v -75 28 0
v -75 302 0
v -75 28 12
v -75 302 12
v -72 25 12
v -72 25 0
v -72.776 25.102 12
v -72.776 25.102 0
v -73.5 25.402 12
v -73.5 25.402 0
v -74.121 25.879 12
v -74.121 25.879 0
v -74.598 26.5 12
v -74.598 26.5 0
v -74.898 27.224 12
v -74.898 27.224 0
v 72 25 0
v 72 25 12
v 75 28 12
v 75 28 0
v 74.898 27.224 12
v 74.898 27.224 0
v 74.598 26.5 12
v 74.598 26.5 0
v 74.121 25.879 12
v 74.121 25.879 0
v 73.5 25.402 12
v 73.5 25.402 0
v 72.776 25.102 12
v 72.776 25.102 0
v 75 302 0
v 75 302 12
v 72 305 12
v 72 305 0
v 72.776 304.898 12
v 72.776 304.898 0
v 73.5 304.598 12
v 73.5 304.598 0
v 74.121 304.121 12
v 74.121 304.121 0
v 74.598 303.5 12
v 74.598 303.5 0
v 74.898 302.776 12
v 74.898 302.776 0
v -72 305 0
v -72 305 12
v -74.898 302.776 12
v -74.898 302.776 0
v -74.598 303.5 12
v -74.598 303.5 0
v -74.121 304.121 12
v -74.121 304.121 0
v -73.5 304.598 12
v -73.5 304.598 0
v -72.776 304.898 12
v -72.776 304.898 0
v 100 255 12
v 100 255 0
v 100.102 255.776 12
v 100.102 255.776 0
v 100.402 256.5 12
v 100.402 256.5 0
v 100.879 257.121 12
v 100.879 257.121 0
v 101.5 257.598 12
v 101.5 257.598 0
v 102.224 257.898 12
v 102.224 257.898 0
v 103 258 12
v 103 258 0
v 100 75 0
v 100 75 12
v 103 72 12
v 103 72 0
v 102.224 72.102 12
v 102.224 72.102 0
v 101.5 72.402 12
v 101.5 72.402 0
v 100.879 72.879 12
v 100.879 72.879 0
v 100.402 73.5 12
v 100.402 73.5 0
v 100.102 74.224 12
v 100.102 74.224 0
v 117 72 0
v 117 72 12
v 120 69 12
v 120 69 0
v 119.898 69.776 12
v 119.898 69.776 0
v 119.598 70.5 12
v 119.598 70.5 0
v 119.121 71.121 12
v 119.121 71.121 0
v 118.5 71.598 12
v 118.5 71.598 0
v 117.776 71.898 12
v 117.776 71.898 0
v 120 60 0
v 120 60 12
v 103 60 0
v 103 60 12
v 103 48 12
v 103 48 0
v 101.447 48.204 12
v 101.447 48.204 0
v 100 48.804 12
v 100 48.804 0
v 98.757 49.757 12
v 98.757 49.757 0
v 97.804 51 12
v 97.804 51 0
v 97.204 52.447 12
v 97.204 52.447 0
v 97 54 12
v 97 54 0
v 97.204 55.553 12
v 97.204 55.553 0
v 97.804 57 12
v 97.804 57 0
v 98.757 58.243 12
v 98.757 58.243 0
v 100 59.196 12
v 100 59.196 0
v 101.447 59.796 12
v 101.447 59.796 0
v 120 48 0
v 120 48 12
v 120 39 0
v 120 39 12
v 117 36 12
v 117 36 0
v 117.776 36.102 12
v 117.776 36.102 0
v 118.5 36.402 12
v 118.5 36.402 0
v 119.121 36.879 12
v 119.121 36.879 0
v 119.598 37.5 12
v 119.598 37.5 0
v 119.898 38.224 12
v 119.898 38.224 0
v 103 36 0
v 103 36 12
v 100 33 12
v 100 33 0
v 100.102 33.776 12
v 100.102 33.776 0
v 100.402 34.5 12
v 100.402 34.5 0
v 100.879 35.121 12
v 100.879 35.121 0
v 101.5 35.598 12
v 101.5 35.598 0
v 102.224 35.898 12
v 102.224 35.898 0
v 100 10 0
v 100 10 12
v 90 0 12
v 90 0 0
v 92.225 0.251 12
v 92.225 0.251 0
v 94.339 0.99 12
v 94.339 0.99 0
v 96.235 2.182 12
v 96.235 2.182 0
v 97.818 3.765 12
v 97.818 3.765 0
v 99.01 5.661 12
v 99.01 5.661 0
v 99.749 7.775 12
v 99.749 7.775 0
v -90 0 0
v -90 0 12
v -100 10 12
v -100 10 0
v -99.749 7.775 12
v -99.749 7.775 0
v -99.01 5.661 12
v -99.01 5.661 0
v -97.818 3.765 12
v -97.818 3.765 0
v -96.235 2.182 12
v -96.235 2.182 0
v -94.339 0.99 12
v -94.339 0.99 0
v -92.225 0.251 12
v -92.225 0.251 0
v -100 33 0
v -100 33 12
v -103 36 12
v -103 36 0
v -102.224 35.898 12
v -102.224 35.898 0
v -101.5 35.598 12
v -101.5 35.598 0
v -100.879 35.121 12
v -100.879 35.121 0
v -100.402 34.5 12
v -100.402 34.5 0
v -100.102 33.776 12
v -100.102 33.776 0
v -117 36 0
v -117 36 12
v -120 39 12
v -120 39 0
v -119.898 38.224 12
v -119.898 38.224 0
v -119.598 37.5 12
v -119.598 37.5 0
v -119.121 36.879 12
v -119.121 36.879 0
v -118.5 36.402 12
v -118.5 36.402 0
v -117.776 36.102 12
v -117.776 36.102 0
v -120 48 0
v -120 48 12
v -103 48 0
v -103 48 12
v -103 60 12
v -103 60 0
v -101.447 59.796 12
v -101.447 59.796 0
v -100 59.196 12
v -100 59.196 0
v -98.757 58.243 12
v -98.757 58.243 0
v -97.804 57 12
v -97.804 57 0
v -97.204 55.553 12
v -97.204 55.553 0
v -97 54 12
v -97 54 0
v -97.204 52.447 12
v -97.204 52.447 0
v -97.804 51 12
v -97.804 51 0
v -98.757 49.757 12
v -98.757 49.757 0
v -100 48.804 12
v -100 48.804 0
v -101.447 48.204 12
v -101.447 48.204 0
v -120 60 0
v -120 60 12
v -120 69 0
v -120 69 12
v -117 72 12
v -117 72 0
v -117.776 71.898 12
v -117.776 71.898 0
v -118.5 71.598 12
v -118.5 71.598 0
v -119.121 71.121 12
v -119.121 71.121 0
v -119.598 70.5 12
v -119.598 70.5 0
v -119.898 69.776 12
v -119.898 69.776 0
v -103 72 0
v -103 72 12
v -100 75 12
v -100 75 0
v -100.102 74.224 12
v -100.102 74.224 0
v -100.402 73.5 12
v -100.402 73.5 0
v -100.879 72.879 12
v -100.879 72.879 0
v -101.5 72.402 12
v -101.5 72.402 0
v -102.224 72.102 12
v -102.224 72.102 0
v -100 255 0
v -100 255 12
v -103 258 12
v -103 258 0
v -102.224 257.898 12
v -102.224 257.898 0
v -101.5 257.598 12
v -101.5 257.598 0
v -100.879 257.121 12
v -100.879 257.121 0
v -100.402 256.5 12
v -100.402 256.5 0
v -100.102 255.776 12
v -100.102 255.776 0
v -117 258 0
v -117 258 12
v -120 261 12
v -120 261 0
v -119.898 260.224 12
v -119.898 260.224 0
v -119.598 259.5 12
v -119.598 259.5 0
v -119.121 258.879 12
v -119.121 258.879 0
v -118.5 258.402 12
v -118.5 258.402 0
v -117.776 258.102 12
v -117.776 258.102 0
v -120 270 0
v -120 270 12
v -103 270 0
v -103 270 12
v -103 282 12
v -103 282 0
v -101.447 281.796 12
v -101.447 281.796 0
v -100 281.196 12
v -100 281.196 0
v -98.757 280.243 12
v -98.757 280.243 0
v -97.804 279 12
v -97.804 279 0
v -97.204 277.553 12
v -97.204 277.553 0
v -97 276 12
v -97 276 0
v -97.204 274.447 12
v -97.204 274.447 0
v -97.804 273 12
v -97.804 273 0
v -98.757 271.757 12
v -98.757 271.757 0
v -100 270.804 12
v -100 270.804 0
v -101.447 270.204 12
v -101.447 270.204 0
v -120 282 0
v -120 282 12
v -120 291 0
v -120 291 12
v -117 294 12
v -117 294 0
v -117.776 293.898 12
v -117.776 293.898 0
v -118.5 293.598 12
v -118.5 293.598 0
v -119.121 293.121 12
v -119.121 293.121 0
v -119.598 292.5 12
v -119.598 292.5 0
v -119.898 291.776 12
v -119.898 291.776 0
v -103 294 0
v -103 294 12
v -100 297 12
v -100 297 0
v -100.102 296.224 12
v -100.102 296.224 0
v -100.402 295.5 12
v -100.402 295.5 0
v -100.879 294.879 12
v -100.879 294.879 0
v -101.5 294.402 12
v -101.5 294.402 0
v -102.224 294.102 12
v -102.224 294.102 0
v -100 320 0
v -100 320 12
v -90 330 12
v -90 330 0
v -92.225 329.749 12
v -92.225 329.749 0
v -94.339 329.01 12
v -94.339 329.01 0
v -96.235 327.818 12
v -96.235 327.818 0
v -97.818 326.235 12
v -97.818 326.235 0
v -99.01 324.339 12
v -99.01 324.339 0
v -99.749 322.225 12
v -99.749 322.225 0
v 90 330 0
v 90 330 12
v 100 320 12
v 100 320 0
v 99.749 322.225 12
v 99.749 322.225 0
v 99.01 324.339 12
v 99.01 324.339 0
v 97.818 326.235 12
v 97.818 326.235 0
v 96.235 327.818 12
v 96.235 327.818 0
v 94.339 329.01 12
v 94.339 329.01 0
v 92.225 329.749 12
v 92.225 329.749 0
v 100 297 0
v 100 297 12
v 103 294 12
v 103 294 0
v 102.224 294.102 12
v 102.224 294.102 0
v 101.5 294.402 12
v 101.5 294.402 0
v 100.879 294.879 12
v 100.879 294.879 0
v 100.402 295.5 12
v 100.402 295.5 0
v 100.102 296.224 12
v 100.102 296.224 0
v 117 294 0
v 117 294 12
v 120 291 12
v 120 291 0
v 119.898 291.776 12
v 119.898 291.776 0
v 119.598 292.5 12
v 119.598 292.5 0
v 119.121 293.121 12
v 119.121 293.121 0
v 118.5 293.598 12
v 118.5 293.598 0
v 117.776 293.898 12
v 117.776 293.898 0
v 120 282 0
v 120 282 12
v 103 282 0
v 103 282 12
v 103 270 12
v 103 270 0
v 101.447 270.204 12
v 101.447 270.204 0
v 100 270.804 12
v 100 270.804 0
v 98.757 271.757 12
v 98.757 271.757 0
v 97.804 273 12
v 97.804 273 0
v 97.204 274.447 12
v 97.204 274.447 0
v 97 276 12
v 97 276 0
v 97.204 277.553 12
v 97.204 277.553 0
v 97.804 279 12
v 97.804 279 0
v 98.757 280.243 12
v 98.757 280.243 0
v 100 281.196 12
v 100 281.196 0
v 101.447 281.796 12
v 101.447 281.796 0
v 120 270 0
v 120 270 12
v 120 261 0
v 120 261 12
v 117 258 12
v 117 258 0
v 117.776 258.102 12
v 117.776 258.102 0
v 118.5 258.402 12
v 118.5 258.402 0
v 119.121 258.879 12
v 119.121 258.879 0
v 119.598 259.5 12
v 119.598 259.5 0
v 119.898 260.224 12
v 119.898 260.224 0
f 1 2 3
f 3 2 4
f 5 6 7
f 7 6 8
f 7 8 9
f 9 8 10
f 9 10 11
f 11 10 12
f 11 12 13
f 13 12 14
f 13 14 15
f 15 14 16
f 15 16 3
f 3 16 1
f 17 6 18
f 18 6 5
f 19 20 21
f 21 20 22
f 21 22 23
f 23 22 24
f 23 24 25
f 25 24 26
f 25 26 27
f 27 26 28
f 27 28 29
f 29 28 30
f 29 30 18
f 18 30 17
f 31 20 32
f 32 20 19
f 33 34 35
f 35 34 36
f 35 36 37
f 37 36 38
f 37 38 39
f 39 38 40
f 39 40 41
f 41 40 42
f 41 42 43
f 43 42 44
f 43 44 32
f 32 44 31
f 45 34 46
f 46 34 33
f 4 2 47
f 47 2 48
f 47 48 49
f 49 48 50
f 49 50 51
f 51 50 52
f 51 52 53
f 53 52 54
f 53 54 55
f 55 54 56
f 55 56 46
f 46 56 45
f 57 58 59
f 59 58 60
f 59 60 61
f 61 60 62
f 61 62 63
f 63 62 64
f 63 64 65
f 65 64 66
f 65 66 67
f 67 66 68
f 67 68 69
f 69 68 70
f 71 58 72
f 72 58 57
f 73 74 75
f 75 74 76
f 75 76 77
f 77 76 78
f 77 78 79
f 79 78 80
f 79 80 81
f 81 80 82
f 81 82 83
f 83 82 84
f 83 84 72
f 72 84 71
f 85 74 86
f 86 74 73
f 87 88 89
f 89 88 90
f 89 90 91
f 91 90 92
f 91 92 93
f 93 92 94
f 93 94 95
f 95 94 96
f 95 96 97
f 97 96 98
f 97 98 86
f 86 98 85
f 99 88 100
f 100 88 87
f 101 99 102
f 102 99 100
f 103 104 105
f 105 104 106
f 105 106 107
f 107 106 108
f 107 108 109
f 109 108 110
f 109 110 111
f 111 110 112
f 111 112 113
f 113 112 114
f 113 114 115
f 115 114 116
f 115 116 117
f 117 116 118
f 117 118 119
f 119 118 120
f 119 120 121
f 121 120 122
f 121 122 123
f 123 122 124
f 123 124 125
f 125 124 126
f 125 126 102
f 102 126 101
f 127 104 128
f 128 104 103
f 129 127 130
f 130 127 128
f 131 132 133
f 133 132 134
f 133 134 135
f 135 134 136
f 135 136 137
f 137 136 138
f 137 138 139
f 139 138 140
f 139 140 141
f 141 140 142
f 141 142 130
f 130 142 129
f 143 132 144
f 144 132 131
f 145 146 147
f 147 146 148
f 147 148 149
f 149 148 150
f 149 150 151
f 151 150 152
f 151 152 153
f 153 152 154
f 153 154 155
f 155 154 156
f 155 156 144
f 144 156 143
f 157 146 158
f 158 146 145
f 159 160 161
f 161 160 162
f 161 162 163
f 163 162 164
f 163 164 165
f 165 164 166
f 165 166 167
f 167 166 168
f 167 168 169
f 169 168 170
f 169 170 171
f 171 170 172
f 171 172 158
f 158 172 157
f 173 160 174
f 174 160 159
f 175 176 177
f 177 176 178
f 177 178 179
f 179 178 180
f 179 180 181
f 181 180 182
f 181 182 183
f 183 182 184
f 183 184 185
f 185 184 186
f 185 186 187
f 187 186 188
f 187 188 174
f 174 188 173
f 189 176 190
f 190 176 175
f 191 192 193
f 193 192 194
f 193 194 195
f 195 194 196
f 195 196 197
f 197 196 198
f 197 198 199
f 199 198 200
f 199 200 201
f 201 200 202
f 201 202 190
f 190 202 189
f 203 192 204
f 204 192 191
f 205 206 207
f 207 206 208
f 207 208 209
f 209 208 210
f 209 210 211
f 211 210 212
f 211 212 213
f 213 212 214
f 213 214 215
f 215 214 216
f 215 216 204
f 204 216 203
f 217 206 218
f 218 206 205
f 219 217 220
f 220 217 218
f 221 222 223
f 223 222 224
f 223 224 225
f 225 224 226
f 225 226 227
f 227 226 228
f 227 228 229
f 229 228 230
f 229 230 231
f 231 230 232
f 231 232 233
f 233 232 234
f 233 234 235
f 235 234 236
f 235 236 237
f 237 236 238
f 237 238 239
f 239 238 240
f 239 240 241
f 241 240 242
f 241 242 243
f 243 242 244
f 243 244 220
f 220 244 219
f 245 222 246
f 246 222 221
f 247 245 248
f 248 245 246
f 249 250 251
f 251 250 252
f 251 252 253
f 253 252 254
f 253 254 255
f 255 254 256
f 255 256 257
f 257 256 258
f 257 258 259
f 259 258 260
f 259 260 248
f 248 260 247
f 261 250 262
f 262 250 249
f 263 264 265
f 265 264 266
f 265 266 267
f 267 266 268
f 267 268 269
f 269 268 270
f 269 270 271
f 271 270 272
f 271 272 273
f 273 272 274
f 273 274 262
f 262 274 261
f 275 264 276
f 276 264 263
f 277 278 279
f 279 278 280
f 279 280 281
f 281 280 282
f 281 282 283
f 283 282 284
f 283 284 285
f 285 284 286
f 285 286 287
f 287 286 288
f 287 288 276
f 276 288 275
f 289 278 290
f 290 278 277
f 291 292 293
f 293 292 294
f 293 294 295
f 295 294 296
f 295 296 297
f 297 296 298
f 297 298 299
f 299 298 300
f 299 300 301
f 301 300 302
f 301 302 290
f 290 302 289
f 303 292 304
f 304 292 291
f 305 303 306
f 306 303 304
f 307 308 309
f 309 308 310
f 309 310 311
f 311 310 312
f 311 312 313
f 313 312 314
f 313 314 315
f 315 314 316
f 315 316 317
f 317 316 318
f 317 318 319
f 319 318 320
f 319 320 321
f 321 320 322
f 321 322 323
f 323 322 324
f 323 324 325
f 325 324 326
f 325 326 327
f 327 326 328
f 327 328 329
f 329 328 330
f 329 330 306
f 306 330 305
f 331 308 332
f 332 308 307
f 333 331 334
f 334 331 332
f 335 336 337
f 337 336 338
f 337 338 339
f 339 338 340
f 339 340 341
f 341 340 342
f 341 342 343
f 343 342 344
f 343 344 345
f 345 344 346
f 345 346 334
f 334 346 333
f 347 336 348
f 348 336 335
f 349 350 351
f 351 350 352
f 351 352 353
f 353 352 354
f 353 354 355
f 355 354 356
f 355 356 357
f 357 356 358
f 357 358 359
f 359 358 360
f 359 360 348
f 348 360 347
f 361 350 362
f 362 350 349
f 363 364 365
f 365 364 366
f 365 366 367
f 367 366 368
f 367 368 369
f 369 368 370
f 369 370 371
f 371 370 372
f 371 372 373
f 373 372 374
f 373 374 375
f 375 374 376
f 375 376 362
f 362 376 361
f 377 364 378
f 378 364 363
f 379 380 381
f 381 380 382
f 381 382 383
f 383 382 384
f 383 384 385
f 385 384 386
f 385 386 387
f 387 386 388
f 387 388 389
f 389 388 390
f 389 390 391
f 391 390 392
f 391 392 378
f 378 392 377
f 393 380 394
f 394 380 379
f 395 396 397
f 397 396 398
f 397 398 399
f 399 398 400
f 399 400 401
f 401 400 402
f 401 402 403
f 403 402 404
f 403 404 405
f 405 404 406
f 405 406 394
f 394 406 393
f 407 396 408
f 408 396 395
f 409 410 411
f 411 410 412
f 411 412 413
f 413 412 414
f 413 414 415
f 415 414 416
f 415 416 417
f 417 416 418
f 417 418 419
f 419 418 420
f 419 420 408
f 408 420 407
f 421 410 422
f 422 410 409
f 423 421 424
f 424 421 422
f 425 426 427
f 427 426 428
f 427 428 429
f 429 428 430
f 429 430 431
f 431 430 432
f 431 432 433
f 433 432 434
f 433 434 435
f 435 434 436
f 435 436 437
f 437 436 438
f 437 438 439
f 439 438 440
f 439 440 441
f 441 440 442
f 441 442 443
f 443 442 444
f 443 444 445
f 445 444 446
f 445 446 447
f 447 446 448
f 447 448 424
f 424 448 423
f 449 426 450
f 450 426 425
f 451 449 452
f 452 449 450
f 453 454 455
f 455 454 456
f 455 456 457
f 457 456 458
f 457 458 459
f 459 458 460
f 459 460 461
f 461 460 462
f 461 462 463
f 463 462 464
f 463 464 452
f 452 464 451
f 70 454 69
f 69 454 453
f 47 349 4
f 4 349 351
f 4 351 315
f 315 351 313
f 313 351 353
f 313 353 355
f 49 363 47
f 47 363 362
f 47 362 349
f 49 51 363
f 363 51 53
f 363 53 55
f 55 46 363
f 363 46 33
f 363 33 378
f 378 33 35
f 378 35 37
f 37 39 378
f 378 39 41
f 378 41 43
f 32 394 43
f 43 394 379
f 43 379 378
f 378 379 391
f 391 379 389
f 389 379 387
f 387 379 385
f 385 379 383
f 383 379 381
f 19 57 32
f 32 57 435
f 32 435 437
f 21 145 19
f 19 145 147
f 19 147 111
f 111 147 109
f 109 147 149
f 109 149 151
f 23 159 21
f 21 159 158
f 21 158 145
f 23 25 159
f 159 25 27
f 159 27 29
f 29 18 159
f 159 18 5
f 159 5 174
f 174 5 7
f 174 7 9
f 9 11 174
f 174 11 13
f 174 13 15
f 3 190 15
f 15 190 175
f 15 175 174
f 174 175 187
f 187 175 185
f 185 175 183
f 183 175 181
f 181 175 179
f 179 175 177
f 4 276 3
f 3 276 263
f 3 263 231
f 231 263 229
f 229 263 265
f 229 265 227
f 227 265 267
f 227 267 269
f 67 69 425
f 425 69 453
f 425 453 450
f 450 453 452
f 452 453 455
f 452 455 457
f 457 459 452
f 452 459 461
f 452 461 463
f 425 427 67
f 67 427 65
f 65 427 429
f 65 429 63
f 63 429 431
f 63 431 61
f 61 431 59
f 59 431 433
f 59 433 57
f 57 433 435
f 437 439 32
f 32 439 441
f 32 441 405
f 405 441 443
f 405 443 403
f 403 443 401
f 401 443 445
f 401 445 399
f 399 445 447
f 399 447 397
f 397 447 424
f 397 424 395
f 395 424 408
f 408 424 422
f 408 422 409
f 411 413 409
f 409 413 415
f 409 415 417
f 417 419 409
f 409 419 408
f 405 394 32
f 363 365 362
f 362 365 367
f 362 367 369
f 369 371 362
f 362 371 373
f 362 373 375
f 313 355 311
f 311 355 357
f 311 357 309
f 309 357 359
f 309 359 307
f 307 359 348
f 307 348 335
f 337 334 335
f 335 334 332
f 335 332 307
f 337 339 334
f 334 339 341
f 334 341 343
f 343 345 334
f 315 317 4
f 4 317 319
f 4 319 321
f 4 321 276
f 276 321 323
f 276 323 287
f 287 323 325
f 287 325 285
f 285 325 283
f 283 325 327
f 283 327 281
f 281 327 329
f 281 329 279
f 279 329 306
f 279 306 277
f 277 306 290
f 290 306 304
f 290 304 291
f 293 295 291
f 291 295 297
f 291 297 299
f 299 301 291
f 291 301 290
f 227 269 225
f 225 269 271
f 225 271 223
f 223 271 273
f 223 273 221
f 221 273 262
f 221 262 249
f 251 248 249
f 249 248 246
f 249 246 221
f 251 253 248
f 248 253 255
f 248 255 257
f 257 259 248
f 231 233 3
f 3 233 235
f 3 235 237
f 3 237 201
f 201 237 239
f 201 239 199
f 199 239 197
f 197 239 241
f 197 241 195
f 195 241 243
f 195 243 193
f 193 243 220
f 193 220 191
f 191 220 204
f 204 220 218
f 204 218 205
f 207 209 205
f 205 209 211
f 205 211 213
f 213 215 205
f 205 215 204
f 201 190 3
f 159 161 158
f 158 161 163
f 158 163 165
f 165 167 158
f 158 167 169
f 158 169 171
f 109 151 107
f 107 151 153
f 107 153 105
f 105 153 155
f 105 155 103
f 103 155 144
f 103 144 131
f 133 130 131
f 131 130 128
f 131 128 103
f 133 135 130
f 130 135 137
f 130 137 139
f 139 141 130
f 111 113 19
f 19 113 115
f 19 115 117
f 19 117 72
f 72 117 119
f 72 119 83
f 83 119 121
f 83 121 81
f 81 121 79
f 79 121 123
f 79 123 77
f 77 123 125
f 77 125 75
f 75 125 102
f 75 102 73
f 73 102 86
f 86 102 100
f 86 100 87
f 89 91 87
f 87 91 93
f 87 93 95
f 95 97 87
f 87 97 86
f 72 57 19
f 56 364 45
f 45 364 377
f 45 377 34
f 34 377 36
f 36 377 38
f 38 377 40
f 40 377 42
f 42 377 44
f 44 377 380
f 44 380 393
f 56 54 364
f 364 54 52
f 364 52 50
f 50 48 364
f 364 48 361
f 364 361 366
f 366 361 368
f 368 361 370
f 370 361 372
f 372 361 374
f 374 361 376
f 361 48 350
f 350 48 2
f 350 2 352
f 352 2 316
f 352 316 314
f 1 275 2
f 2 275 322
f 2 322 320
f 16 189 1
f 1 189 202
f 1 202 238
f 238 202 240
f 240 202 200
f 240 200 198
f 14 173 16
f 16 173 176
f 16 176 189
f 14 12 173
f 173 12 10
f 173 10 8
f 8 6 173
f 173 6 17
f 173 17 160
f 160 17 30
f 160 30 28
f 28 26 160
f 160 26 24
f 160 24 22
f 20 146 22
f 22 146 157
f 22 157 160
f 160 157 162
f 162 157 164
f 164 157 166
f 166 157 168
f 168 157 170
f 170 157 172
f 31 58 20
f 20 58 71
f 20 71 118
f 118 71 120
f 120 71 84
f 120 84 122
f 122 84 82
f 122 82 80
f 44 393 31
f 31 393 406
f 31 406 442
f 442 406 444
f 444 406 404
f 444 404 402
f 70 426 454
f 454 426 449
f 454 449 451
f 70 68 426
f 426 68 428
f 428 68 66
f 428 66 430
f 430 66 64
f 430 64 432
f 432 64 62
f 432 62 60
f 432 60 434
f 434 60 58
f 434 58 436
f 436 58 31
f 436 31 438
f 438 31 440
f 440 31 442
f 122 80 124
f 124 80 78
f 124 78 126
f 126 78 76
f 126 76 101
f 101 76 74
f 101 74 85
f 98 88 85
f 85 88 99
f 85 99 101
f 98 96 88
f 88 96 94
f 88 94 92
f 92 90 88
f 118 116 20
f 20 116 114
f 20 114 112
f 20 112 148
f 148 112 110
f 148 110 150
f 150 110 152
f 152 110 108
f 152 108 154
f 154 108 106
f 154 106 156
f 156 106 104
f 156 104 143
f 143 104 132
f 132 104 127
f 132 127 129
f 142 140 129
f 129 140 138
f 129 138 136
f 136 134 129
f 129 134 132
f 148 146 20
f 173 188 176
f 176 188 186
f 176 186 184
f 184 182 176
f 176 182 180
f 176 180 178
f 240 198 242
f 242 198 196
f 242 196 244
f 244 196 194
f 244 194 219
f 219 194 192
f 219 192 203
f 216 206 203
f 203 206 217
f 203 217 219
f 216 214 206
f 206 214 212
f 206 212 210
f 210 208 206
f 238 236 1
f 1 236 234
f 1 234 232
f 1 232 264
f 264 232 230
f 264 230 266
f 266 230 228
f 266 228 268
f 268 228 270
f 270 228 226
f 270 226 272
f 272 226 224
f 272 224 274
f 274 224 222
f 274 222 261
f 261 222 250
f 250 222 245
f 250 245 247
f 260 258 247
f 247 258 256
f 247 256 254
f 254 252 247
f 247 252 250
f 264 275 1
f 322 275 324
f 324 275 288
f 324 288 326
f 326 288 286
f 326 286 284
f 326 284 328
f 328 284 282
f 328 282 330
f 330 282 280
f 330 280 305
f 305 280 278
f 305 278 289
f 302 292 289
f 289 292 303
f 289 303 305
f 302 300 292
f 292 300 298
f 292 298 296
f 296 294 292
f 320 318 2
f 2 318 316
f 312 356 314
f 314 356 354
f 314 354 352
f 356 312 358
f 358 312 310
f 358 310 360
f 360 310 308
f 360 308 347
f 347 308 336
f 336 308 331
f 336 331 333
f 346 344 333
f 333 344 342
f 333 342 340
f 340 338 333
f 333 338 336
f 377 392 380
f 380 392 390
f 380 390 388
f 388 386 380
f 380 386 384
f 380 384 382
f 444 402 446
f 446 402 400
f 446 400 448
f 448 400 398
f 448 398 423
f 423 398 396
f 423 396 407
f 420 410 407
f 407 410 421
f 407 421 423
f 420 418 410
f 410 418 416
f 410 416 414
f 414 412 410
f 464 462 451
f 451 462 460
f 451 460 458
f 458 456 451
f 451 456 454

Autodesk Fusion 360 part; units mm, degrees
sketch "Sketch1" plane through (0, 0, 0) normal (0, 0, 1) x (1, 0, 0)
  line L0 (0, 0) -> (-90, 0)
  line L1 (0, 25) -> (-72, 25)
  line L2 (-75, 28) -> (-75, 165)
  arc A0 (-75, 28) -> (-72, 25) centre (-72, 28) ccw
  arc A1 (-100, 10) -> (-90, 0) centre (-90, 10) ccw
  line L3 (-103, 72) -> (-117, 72)
  line L4 (-120, 69) -> (-120, 39)
  line L5 (-117, 36) -> (-103, 36)
  line L6 (-120, 54) -> (-100, 54) construction
  line L7 (-103, 60) -> (-120, 60)
  line L8 (-120, 60) -> (-120, 48)
  line L9 (-120, 48) -> (-103, 48)
  arc A2 (-103, 48) -> (-103, 60) centre (-103, 54) ccw
  line L10 (-100, 10) -> (-100, 33)
  line L11 (-100, 75) -> (-100, 165)
  arc A3 (-117, 72) -> (-120, 69) centre (-117, 69) ccw
  arc A4 (-120, 39) -> (-117, 36) centre (-117, 39) ccw
  arc A5 (-103, 72) -> (-100, 75) centre (-103, 75) ccw
  arc A6 (-100, 33) -> (-103, 36) centre (-103, 33) ccw
  line L12 (0, 180) -> (0, -75.868) construction
  line L13 (75, 28) -> (75, 165)
  line L14 (103, 72) -> (117, 72)
  line L15 (0, 0) -> (90, 0)
  line L16 (103, 60) -> (120, 60)
  line L17 (120, 60) -> (120, 48)
  line L18 (100, 75) -> (100, 165)
  arc A7 (117, 36) -> (120, 39) centre (117, 39) ccw
  arc A8 (90, 0) -> (100, 10) centre (90, 10) ccw
  line L19 (100, 10) -> (100, 33)
  line L20 (120, 69) -> (120, 39)
  arc A9 (103, 60) -> (103, 48) centre (103, 54) ccw
  arc A10 (120, 69) -> (117, 72) centre (117, 69) ccw
  arc A11 (72, 25) -> (75, 28) centre (72, 28) ccw
  arc A12 (103, 36) -> (100, 33) centre (103, 33) ccw
  line L21 (120, 48) -> (103, 48)
  line L22 (0, 25) -> (72, 25)
  arc A13 (100, 75) -> (103, 72) centre (103, 75) ccw
  line L23 (120, 54) -> (100, 54) construction
  line L24 (117, 36) -> (103, 36)
  line L25 (100, 165) -> (-100, 165) construction
  line L26 (0, 150) -> (0, 405.868) construction
  line L27 (75, 302) -> (75, 165)
  line L28 (103, 258) -> (117, 258)
  line L29 (0, 305) -> (-72, 305)
  line L30 (-103, 270) -> (-120, 270)
  line L31 (120, 276) -> (100, 276) construction
  line L32 (-75, 302) -> (-75, 165)
  line L33 (0, 330) -> (90, 330)
  arc A14 (-103, 270) -> (-103, 282) centre (-103, 276) ccw
  line L34 (-103, 258) -> (-117, 258)
  arc A15 (-103, 294) -> (-100, 297) centre (-103, 297) ccw
  arc A16 (75, 302) -> (72, 305) centre (72, 302) ccw
  line L35 (-100, 320) -> (-100, 297)
  line L36 (-117, 294) -> (-103, 294)
  line L37 (-120, 261) -> (-120, 291)
  arc A17 (100, 320) -> (90, 330) centre (90, 320) ccw
  arc A18 (-72, 305) -> (-75, 302) centre (-72, 302) ccw
  line L38 (117, 294) -> (103, 294)
  arc A19 (117, 258) -> (120, 261) centre (117, 261) ccw
  arc A20 (-120, 261) -> (-117, 258) centre (-117, 261) ccw
  line L39 (120, 270) -> (120, 282)
  arc A21 (103, 282) -> (103, 270) centre (103, 276) ccw
  arc A22 (-90, 330) -> (-100, 320) centre (-90, 320) ccw
  arc A23 (-100, 255) -> (-103, 258) centre (-103, 255) ccw
  line L40 (-120, 270) -> (-120, 282)
  line L41 (120, 282) -> (103, 282)
  arc A24 (120, 291) -> (117, 294) centre (117, 291) ccw
  arc A25 (-117, 294) -> (-120, 291) centre (-117, 291) ccw
  line L42 (-120, 276) -> (-100, 276) construction
  arc A26 (100, 297) -> (103, 294) centre (103, 297) ccw
  line L43 (0, 330) -> (-90, 330)
  line L44 (-120, 282) -> (-103, 282)
  line L45 (100, 320) -> (100, 297)
  arc A27 (103, 258) -> (100, 255) centre (103, 255) ccw
  line L46 (103, 270) -> (120, 270)
  line L47 (120, 261) -> (120, 291)
  line L48 (-100, 255) -> (-100, 165)
  line L49 (100, 255) -> (100, 165)
  line L50 (0, 305) -> (72, 305)
  point P0 (-100, 0)
  point P1 (-75, 25)
  point P2 (-120, 72)
  point P3 (-120, 36)
  point P4 (120, 36)
  point P5 (120, 72)
  point P6 (100, 0)
  point P7 (75, 25)
  point P8 (-75, 305)
  point P9 (0, 330)
  point P10 (120, 258)
  point P11 (120, 294)
  point P12 (75, 305)
  point P13 (-100, 330)
  point P14 (-120, 294)
  point P15 (-120, 258)
  point P16 (100, 330)
  dimension "d16" = 100
  dimension "d17" = 165
  dimension "d18" = 25
  dimension "d19" = 25
  dimension "d20" = 140
  dimension "d21" = 3
  dimension "d22" = 10
  dimension "d23" = 12
  dimension "d24" = 3
  dimension "d25" = 36
  dimension "d28" = 3
  dimension "d29" = 3
  dimension "d30" = 3
  dimension "d31" = 54
  dimension "d32" = 36
extrude "Extrude1" add sketch "Sketch1" along normal blind 12 contours L0 A1 L3 L4 L5 L7 L9 A2 L10 L11 A3 A4 A5 A6 L14 L15 L16 L18 A7 A8 L19 L20 A9 A10 A12 L21 A13 L24 L28 L30 L33 A14 L34 A15 L35 L36 L37 A17 L38 A19 A20 A21 A22 A23 L41 A24 A25 A26 L43 L44 L45 A27 L46 L47 L48 L49
equation "width = 200 mm"
equation "length = 330 mm"
equation "outer_corner_radius = 10 mm"
equation "inner_corner_radius = 3 mm"
equation "edge_width = 25 mm"
equation "thickness = 12 mm"
equation "notch_diameter = 12 mm"
equation "notch_ear_extension = 20 mm"
equation "notch_ear_width = 12 mm"
equation "notch_inset = 3 mm"
equation "notch_to_edge_distance = 54 mm"
equation "d16 = width / 2"
equation "d17 = length / 2"
equation "d18 = edge_width"
equation "d19 = edge_width"
equation "d20 = ( length / 2 ) - ( edge_width )"
equation "d21 = inner_corner_radius"
equation "d22 = outer_corner_radius"
equation "d23 = notch_diameter"
equation "d24 = notch_inset"
equation "d25 = notch_diameter + ( notch_ear_width * 2 )"
equation "notch_ear_corner_radius = 3 mm"
equation "d28 = notch_ear_corner_radius"
equation "d29 = notch_ear_corner_radius"
equation "d30 = notch_ear_corner_radius"
equation "d31 = notch_to_edge_distance"
equation "d32 = notch_to_edge_distance - ( notch_diameter / 2 ) - notch_ear_width"
equation "d33 = thickness"
